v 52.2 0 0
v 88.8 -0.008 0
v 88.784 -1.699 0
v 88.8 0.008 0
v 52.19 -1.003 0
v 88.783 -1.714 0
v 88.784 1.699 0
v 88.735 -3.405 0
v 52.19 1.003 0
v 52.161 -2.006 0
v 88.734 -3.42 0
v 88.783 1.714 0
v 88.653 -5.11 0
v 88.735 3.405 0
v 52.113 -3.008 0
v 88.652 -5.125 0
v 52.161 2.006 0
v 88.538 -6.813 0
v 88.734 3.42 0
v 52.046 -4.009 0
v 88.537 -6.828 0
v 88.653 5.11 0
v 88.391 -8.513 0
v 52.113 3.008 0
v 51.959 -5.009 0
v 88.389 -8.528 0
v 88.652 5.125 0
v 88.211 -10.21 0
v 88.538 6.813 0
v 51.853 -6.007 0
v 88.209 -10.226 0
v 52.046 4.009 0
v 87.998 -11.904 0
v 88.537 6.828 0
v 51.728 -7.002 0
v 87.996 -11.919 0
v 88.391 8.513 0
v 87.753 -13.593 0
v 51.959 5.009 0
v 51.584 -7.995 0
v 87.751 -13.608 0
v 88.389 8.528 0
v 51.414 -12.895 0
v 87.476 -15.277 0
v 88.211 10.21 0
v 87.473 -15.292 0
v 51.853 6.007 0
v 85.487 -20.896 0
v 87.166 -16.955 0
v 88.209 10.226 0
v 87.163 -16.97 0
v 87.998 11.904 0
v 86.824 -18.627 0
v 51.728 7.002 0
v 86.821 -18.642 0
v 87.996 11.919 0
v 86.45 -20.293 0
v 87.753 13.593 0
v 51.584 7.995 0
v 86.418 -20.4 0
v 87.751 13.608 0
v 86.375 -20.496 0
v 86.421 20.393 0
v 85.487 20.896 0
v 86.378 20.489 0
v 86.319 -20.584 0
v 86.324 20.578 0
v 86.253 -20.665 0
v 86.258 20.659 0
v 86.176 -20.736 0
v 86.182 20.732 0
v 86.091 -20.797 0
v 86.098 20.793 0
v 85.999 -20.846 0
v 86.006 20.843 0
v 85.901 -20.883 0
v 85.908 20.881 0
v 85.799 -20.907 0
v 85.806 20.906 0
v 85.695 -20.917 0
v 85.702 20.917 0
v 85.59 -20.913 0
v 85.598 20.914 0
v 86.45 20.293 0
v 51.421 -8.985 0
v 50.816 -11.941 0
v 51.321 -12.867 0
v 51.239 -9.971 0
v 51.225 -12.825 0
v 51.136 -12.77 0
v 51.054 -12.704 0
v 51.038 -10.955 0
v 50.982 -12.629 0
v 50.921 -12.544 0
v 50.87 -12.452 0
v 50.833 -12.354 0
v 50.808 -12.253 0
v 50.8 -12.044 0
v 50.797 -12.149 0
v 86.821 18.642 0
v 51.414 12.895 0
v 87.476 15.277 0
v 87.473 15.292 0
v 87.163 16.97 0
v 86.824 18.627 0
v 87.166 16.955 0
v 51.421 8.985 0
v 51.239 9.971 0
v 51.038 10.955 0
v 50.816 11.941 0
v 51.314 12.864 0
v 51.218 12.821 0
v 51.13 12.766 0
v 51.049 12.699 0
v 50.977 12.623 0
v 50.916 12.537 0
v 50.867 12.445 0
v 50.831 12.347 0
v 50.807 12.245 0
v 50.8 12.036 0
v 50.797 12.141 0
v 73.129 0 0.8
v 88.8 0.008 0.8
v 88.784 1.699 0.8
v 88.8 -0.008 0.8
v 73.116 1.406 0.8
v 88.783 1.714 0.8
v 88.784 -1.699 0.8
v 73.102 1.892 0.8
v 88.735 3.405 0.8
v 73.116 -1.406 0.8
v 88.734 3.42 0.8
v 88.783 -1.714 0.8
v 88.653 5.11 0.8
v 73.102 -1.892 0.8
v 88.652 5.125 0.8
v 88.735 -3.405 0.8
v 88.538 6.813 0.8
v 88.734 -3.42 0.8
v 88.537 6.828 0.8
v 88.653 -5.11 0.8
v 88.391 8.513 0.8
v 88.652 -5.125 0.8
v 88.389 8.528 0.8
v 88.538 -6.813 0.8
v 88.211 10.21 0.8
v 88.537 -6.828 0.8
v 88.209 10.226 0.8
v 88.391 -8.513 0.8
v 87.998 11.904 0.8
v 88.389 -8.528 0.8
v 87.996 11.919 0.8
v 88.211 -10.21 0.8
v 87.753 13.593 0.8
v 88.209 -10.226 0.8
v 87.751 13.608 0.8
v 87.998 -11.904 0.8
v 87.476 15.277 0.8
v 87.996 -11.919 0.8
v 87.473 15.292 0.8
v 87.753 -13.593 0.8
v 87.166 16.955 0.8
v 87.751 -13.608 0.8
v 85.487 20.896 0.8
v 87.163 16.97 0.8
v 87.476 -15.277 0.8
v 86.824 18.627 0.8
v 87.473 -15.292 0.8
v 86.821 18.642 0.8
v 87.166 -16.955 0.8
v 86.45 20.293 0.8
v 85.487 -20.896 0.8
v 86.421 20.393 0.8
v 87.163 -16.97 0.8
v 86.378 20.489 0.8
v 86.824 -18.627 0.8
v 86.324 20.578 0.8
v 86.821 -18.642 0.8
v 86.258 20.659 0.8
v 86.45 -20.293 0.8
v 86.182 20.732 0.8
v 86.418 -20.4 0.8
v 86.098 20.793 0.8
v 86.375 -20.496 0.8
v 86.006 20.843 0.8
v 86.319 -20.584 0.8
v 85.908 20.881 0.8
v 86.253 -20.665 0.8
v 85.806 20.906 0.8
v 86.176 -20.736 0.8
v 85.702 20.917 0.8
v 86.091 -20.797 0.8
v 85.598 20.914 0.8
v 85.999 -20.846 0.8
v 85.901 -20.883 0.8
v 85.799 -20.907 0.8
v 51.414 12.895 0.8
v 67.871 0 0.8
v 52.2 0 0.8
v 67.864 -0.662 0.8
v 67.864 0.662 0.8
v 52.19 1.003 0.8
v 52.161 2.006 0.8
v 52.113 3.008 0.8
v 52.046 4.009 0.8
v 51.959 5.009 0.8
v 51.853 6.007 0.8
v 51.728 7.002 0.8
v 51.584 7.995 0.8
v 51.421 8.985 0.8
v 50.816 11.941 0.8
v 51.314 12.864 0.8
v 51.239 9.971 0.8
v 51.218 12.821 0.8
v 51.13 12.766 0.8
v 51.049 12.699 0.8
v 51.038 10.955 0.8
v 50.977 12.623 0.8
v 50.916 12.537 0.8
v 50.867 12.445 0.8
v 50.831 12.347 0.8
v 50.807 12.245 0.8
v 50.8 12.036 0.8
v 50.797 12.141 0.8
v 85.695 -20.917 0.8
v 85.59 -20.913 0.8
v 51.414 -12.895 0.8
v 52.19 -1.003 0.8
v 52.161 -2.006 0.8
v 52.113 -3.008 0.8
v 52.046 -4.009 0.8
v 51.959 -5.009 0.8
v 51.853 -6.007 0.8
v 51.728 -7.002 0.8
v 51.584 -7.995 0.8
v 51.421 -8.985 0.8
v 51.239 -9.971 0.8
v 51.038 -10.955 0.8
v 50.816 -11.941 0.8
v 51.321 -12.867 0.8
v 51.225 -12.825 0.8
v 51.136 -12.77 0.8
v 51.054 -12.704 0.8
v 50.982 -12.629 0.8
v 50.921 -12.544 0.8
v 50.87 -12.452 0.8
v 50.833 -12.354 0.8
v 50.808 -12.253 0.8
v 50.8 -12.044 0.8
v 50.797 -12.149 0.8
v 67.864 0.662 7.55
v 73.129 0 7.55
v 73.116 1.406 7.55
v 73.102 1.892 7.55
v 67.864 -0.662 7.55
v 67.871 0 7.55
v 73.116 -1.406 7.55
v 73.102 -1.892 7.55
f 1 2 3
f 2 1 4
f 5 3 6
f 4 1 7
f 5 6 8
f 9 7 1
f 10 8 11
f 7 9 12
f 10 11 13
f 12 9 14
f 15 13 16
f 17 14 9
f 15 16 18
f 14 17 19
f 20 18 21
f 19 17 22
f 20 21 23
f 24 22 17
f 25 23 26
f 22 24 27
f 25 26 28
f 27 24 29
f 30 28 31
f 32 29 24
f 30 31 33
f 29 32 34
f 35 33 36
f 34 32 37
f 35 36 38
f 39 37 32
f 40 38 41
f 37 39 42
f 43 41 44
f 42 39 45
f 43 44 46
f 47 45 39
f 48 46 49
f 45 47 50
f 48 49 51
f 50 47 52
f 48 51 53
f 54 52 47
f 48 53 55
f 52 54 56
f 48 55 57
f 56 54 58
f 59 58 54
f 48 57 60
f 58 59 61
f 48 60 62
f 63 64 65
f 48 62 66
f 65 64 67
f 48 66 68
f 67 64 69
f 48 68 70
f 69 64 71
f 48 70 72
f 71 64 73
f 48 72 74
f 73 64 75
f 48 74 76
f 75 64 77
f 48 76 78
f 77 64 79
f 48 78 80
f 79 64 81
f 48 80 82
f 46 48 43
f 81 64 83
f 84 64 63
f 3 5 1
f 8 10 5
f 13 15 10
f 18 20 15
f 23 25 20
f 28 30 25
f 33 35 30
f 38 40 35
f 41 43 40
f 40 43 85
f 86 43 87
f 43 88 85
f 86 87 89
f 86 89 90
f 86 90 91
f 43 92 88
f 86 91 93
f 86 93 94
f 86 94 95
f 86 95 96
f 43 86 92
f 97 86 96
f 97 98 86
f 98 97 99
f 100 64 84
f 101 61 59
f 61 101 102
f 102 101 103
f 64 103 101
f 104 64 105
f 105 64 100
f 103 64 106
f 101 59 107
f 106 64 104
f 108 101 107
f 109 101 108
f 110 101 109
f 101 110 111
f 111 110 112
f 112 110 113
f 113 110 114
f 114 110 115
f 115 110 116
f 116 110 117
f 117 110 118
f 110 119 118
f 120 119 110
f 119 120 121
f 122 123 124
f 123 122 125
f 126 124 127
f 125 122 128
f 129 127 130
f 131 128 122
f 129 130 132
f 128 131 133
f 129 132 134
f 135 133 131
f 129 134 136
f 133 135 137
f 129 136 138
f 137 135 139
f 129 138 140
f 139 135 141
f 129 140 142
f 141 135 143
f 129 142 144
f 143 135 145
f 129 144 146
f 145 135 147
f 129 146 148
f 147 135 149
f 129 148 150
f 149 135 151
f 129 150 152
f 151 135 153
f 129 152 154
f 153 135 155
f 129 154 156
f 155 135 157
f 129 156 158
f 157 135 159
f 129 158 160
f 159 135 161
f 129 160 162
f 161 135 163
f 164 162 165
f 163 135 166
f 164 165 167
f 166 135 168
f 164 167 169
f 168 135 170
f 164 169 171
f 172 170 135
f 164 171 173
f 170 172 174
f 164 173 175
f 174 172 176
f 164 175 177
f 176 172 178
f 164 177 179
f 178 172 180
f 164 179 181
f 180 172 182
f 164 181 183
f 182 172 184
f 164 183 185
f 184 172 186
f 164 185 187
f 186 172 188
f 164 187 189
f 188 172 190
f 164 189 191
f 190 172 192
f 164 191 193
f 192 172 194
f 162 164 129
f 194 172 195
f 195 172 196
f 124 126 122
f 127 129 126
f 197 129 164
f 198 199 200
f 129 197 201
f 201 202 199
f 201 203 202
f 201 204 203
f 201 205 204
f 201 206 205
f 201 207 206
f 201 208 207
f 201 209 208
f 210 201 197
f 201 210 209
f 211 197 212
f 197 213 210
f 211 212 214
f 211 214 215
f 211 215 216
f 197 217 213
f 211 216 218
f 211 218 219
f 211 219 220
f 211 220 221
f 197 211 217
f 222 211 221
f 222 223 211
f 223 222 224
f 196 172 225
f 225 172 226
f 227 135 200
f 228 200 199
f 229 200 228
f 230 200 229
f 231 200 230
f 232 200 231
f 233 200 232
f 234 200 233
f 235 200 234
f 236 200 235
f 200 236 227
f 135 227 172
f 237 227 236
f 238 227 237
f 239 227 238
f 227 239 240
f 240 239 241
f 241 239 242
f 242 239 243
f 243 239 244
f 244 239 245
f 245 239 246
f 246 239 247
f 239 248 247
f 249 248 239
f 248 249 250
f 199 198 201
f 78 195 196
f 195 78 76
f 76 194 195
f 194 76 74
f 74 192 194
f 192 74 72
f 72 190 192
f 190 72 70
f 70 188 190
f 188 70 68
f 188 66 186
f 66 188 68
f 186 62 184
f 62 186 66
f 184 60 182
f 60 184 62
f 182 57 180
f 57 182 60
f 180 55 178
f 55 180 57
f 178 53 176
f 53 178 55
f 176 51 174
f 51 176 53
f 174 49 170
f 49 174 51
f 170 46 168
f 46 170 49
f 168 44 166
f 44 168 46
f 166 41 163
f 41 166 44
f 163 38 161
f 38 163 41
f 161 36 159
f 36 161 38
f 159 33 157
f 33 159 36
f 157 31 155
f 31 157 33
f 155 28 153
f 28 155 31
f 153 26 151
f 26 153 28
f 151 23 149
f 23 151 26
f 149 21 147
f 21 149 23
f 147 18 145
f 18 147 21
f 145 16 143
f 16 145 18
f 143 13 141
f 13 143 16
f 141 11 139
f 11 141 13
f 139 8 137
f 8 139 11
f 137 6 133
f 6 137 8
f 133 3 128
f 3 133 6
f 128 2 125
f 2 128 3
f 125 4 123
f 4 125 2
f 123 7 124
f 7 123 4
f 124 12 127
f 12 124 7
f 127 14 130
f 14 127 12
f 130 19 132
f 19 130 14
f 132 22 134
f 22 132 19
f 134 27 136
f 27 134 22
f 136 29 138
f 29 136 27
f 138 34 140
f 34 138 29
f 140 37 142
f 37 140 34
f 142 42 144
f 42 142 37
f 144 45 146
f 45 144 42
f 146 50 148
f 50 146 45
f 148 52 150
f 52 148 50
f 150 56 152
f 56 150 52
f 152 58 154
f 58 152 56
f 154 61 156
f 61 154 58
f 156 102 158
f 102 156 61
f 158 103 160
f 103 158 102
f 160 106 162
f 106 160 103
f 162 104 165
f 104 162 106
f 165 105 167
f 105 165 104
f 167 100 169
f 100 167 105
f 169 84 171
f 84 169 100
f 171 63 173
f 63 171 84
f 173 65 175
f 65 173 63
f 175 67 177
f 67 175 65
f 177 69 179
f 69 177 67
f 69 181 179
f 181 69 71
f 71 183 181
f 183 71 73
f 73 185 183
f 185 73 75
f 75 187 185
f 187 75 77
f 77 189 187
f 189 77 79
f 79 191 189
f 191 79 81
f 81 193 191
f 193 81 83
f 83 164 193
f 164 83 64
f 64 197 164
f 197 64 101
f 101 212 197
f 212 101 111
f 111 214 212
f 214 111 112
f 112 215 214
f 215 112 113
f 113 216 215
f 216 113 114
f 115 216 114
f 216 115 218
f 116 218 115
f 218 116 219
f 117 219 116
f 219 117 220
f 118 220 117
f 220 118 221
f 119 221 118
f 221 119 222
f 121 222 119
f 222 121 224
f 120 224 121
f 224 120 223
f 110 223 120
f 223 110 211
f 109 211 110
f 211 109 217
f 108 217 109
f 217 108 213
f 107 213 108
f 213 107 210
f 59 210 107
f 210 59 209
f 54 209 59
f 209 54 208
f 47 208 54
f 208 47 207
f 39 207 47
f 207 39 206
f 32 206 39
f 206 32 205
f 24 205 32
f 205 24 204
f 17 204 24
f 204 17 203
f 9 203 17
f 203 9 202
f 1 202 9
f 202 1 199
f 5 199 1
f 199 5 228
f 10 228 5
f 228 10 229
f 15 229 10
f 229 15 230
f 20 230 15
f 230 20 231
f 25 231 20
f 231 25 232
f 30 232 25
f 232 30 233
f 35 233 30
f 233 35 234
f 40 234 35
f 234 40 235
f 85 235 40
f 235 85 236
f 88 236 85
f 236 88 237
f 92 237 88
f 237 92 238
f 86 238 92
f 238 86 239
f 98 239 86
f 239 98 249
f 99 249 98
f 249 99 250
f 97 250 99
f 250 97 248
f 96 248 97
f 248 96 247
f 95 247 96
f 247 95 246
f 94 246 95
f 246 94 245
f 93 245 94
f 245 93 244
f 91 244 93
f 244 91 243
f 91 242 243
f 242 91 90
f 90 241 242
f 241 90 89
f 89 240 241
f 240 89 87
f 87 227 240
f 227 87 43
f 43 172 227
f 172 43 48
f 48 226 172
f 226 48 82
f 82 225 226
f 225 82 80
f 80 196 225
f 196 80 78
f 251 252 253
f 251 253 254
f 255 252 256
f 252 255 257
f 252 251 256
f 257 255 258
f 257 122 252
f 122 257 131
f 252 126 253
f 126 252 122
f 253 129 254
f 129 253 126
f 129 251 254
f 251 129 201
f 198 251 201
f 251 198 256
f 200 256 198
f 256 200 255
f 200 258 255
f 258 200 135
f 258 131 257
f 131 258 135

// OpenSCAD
// file: parameters.scad
// =============================================================================
// Gen-BX — nightly 2026-10-11 (physics_scorer, honest magpylib watts)
// Gap reduction paid for by a bigger ring: the Gen-BU 8p/12c layout with the copper cut from 8.1 to 6.75 mm (magnet face to magnet face 10.70 → 9.35 mm, so Bz at the copper rises) and the lost window area won back radially, with the poles moved out to R71 and the bobbins stretched to r53–88. The scans show the thin-copper optimum only appears on the bigger ring (on R66 it gains far less), and R71 / Ø194 stator is the largest machine that still packs on one 410 mm plate.
// Clocking 0 deg (magnets N facing S) + D-flat keyed bore + index notch + flip-symmetric hole map.
// Windable 2-piece bobbin; turns = physics_scorer turns_fit; copper only between flanges.
// Steel back-iron: 2× Ø168 × 4.76 mm (3/16") mild-steel discs (steel_backiron_disc.dxf); magnets sit ON the steel
// (through-pockets) -> score with --back-iron. Night 2026-10-11.
// =============================================================================
topology            = "dual_rotor";

// --- Wire / winding (physics_scorer winding-fit) -------------------------------
wire_awg            = 26;
wire_od             = 0.45;     // insulated OD mm (bare 0.405)
fill_realistic      = 0.65;     // insulated-wire area / window (DENSE layered wind with a jig; scorer cap 0.65)
turns               = 410;       // = physics_scorer turns_fit (do NOT raise)
coil_former_type    = "bobbin";
coil_core_inset     = 14.87;     // radial copper build: hub = copper boundary inset by this
wind_build_axial    = 0.0;      // nothing proud of the flanges
wind_build_radial   = 0.0;

// --- Bobbin (base + lid) ---------------------------------------------------------
coil_id_r           = 53.00;    // copper boundary sector
coil_od_r           = 88.00;
span_deg            = 26.43;    // = pitch - 2*asin((wall+0.85)/coil_id_r) -> >=1.2 mm stator web
former_web          = 6.75;     // copper height between flanges (TALL copper: steel keeps Bz up)
flange_t            = 0.80;     // >= 0.8 mm FDM wall rule (tall winds push on the flanges)
wall                = 0.80;     // flange lip beyond copper
former_bare_h       = former_web + 2 * flange_t;
coil_envelope_h     = former_bare_h + 2 * wind_build_axial;
tab_w               = 7.0;
tab_len             = 7.0;
tab_h               = former_bare_h / 2;
pin_d               = 1.9;      // 1.75 mm filament locating pin
coil_mount_r        = coil_od_r + 0.2 + 4.0;
lead_y              = 1.6;
lead_slot_w         = 0.9;
lead_groove_d       = 0.6;

// --- Gap -------------------------------------------------------------------------
run_clear           = 0.50;     // rotor face -> flange
gap_spacer_h        = run_clear + wind_build_axial;
m2m                 = coil_envelope_h + 2 * run_clear;   // rotor face to rotor face (= gap_sleeve length)

// --- Stator ----------------------------------------------------------------------
coil_stations       = 12;
bay_clear           = 0.25;
stator_thick        = former_bare_h;                        // bobbins flush both faces
stator_od           = 194;
shaft_clear_stator  = 14.0;     // stator is static; gap sleeve OD 12 spins inside

// --- Rotor(s) --------------------------------------------------------------------
magnet_Br           = 1.43;     // N52
magnet_d_large      = 20.0;
magnet_h_large      = 5.0;      // one O20x5 per pocket
magnet_h_small      = 5.0;      // unused: no O5 pockets in this kit
halbach_magnetisation = "none";  // NO O5 assist magnets in this kit (scan: they lower the 4-pole score)
rotor_b_same_axis   = true;     // same-index magnets share one axis: N faces S across the gap
large_pocket_d      = 20.3;
small_pocket_d      = 5.3;
pocket_h            = 5.00;     // THROUGH the carrier: magnet back face sits on the steel disc (FLUSH seat: carrier = magnet height, magnet face level with the rotor face)
large_n             = 8;
R_large             = 71.0;
small_r_list        = [];       // no O5 pockets
carrier_od          = 168.0;
carrier_thick       = pocket_h;
hub_h               = 12.0;     // > steel_t + insert: radial set-screw clears the steel
hub_od              = 24.0;     // slim hub so the M4 brace rods fit at R~18 inside the coil ring
hub_insert_d        = 4.0;      // M3 heat-set insert, radial, bears on the D-flat
rotor_b_offset_deg  = 0.0;      // CLOCKING: magnets directly opposite
shaft_key           = "dflat";
dflat_depth         = 0.5;      // 8 mm shaft with 0.5 mm flat (7.5 across flat)
index_notch_d       = 3.0;

// --- Steel back-iron (buyable laser-cut) -------------------------------------------
steel_t             = 4.76;      // mild steel thickness (image method ignores it; sized from steel_flux.py so the return path stays well below saturation)
steel_center_hole   = 26.0;     // slips over the rotor hub (OD 24)
steel_od            = carrier_od;   // steel disc OD = rotor carrier OD

// --- Modular MAX interface ----------------------------------------------------------
shaft_bore          = 8.35;
dflat_x             = 4.0 - dflat_depth + (shaft_bore - 8.0) / 2;
bearing_d           = 21.85;
bearing_h           = 7.2;
m3_clear            = 3.5;
bolt_r_inner        = 30.0;     // M3 steel-disc clamp bolts (inside the magnet ring)
bolt_n_inner        = 4;
bolt_inner_angles   = [0, 90, 180, 270];
bolt_r_outer        = 44.0;     // second M3 steel-disc clamp ring
bolt_outer_angles   = [67.5, 112.5, 247.5, 292.5];
flange_bolt_r       = 91.5;     // frame rods: OUTSIDE the rotor OD (rotors spin inside them)
flange_bolt_n       = 4;
flange_bolt_offset  = 45.00;    // between coil stations -> never cuts a lead groove/tab
brace_r             = 18.0;
brace_d             = 4.3;      // temporary M4 jack rods (assembly only)
brace_n             = 4;
brace_angles        = [45, 135, 225, 315];          // flip-symmetric

spacer_pad_od       = 14.0;
spacer_pad_id       = m3_clear;
endbell_od          = 193.0;
endbell_thick       = 8.0;
endbell_shaft_clear = 10.0;
collar_h            = 10.0;
standoff_od         = 9.0;
frame_standoff_h    = run_clear + carrier_thick + hub_h + collar_h + 2.0;
sleeve_od           = 12.0;
plate_max_mm        = 410;

$fn = 64;
// main file
// Gen-BX — bobbin BASE (bottom flange + hub). Print x12, flange down. Wind 26 AWG x 410 t around
// the hub with the LID glued on (coil_lid.stl). Copper lives ONLY between the flanges (no proud winds).
include <parameters.scad>;
$fn = 48;
module sector_2d(r_in, r_out, ang) {
    polygon([
        for (a = [-ang/2 : ang/24 : ang/2]) [r_in*cos(a), r_in*sin(a)],
        for (a = [ang/2 : -ang/24 : -ang/2]) [r_out*cos(a), r_out*sin(a)]
    ]);
}
module footprint_2d() { offset(r=wall) sector_2d(coil_id_r, coil_od_r, span_deg); }
module hub_2d()       { offset(delta=-coil_core_inset) sector_2d(coil_id_r, coil_od_r, span_deg); }

union() {
    linear_extrude(flange_t) footprint_2d();
    translate([0, 0, flange_t - 0.01]) linear_extrude(former_web + 0.01) hub_2d();
}
